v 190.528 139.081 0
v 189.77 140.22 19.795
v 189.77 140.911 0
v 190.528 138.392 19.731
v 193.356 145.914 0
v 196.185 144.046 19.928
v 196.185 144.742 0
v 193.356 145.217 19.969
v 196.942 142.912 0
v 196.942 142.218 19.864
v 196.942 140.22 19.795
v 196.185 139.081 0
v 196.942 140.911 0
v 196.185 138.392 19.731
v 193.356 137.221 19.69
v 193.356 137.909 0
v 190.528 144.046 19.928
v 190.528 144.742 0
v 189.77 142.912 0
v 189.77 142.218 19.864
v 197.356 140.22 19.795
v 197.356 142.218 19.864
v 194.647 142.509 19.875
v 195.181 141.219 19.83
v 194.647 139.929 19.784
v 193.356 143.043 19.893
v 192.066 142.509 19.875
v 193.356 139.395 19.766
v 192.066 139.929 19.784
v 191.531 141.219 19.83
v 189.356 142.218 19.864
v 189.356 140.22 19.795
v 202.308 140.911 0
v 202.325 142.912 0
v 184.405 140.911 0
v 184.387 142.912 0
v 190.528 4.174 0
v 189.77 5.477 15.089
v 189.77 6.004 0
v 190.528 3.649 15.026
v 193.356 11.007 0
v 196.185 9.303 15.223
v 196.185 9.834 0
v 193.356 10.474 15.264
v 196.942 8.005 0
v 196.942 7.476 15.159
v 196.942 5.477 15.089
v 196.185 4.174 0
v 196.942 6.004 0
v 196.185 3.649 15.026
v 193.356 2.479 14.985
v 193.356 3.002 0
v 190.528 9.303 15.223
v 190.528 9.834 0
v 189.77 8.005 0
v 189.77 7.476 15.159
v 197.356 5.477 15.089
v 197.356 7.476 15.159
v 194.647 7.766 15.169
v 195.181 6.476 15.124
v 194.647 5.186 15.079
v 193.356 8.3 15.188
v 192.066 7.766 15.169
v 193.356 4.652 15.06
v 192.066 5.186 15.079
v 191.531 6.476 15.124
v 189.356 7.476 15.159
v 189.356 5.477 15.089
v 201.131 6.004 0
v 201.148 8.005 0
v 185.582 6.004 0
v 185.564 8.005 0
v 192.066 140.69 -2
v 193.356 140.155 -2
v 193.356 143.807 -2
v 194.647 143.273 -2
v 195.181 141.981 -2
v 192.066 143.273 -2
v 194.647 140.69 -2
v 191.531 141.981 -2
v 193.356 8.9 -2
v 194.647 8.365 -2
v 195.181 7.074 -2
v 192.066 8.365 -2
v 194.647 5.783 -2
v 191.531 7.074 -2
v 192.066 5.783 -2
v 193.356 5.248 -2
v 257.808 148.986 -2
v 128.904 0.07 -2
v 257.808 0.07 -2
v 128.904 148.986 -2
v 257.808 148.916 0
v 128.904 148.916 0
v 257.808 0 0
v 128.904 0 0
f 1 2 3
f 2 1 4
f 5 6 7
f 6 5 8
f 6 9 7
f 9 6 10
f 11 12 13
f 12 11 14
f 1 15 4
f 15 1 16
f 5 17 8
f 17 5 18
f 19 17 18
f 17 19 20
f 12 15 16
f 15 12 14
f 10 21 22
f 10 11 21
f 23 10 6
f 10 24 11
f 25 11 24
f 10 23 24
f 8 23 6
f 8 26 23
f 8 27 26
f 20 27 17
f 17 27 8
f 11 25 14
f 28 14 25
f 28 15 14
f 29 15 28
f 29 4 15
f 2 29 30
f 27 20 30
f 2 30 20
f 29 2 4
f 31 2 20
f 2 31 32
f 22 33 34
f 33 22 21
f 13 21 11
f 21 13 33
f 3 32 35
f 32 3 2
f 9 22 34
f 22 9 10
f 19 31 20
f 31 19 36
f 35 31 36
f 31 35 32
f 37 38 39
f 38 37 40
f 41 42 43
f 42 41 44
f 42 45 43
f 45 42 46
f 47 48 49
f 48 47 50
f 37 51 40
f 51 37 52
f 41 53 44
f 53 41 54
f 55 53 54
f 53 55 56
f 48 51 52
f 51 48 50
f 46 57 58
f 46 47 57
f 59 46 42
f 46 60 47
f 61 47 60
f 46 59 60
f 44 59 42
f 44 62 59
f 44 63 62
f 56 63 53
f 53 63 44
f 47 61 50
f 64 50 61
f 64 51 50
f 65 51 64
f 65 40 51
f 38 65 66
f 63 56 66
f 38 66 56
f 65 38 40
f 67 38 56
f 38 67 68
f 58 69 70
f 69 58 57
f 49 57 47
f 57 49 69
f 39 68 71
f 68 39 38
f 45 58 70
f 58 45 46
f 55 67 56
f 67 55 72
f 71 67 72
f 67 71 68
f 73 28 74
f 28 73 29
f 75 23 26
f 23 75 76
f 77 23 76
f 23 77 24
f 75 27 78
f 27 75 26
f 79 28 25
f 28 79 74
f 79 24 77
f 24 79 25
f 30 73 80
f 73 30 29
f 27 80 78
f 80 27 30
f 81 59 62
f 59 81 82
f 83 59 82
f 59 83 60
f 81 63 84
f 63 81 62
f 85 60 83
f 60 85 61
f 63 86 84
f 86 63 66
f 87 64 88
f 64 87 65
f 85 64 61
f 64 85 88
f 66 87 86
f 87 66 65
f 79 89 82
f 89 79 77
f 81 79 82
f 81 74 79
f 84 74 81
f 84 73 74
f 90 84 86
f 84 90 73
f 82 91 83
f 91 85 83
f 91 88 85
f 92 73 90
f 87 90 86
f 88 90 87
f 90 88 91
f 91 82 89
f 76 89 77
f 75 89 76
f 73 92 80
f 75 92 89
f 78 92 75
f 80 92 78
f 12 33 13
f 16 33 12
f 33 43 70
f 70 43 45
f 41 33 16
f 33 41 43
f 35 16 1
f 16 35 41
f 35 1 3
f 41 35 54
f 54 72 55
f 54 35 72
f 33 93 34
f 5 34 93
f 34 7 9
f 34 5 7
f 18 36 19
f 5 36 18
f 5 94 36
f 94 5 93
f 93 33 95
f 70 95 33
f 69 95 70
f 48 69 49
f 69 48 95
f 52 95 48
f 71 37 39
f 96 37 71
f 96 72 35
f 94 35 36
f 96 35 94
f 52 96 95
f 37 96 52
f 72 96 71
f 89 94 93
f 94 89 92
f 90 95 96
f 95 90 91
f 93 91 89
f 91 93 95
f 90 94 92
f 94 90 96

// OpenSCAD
// Generated by SolidPython 1.1.3 on 2025-01-26 22:52:06
$fn = 8;


difference() {
	intersection() {
		union() {
			difference() {
				rotate(a = 2, v = [1, 0, 0]) {
					translate(v = [0, 0, 15.4445000000]) {
						translate(v = [0, 138.8250000000, 0]) {
							translate(v = [10, 0, 0]) {
								difference() {
									translate(v = [-3, 0, 0]) {
										translate(v = [0, -131.8250000000, 0]) {
											translate(v = [0, 0, -68.5555000000]) {
												union() {
													translate(v = [0, 0, 0]) {
														translate(v = [0, 0, 0]) {
															union() {
																cylinder(h = 68, r = 4.0000000000);
																rotate(a = 90, v = [1, 0, 0]) {
																	linear_extrude(center = true, height = 2) {
																		polygon(paths = [[0, 1, 2, 3]], points = [[0, 0], [0, 68], [4.0000000000, 68], [21.0000000000, 0]]);
																	}
																}
																rotate(a = 90, v = [0, 0, 1]) {
																	rotate(a = 90, v = [1, 0, 0]) {
																		linear_extrude(center = true, height = 2) {
																			polygon(paths = [[0, 1, 2, 3]], points = [[0, 0], [0, 68], [4.0000000000, 68], [21.0000000000, 0]]);
																		}
																	}
																}
															}
														}
													}
													translate(v = [0, 0, 0]) {
														translate(v = [0, 134.8250000000, 0]) {
															union() {
																cylinder(h = 68, r = 4.0000000000);
																rotate(a = 90, v = [1, 0, 0]) {
																	linear_extrude(center = true, height = 2) {
																		polygon(paths = [[0, 1, 2, 3]], points = [[0, 0], [0, 68], [4.0000000000, 68], [21.0000000000, 0]]);
																	}
																}
																rotate(a = 270, v = [0, 0, 1]) {
																	rotate(a = 90, v = [1, 0, 0]) {
																		linear_extrude(center = true, height = 2) {
																			polygon(paths = [[0, 1, 2, 3]], points = [[0, 0], [0, 68], [4.0000000000, 68], [21.0000000000, 0]]);
																		}
																	}
																}
															}
														}
													}
													translate(v = [372.7125000000, 0, 0]) {
														translate(v = [0, 134.8250000000, 0]) {
															union() {
																cylinder(h = 68, r = 4.0000000000);
																rotate(a = 180, v = [0, 0, 1]) {
																	rotate(a = 90, v = [1, 0, 0]) {
																		linear_extrude(center = true, height = 2) {
																			polygon(paths = [[0, 1, 2, 3]], points = [[0, 0], [0, 68], [4.0000000000, 68], [21.0000000000, 0]]);
																		}
																	}
																}
																rotate(a = 270, v = [0, 0, 1]) {
																	rotate(a = 90, v = [1, 0, 0]) {
																		linear_extrude(center = true, height = 2) {
																			polygon(paths = [[0, 1, 2, 3]], points = [[0, 0], [0, 68], [4.0000000000, 68], [21.0000000000, 0]]);
																		}
																	}
																}
															}
														}
													}
													translate(v = [372.7125000000, 0, 0]) {
														translate(v = [0, 0, 0]) {
															union() {
																cylinder(h = 68, r = 4.0000000000);
																rotate(a = 180, v = [0, 0, 1]) {
																	rotate(a = 90, v = [1, 0, 0]) {
																		linear_extrude(center = true, height = 2) {
																			polygon(paths = [[0, 1, 2, 3]], points = [[0, 0], [0, 68], [4.0000000000, 68], [21.0000000000, 0]]);
																		}
																	}
																}
																rotate(a = 90, v = [0, 0, 1]) {
																	rotate(a = 90, v = [1, 0, 0]) {
																		linear_extrude(center = true, height = 2) {
																			polygon(paths = [[0, 1, 2, 3]], points = [[0, 0], [0, 68], [4.0000000000, 68], [21.0000000000, 0]]);
																		}
																	}
																}
															}
														}
													}
													translate(v = [186.3562500000, 0, 0]) {
														translate(v = [0, 134.8250000000, 0]) {
															union() {
																cylinder(h = 68, r = 4.0000000000);
																rotate(a = 90, v = [1, 0, 0]) {
																	linear_extrude(center = true, height = 2) {
																		polygon(paths = [[0, 1, 2, 3]], points = [[0, 0], [0, 68], [4.0000000000, 68], [21.0000000000, 0]]);
																	}
																}
																rotate(a = 180, v = [0, 0, 1]) {
																	rotate(a = 90, v = [1, 0, 0]) {
																		linear_extrude(center = true, height = 2) {
																			polygon(paths = [[0, 1, 2, 3]], points = [[0, 0], [0, 68], [4.0000000000, 68], [21.0000000000, 0]]);
																		}
																	}
																}
															}
														}
													}
													translate(v = [186.3562500000, 0, 0]) {
														translate(v = [0, 0, 0]) {
															union() {
																cylinder(h = 68, r = 4.0000000000);
																rotate(a = 90, v = [1, 0, 0]) {
																	linear_extrude(center = true, height = 2) {
																		polygon(paths = [[0, 1, 2, 3]], points = [[0, 0], [0, 68], [4.0000000000, 68], [21.0000000000, 0]]);
																	}
																}
																rotate(a = 180, v = [0, 0, 1]) {
																	rotate(a = 90, v = [1, 0, 0]) {
																		linear_extrude(center = true, height = 2) {
																			polygon(paths = [[0, 1, 2, 3]], points = [[0, 0], [0, 68], [4.0000000000, 68], [21.0000000000, 0]]);
																		}
																	}
																}
															}
														}
													}
												}
											}
										}
									}
									translate(v = [-3, 0, 0]) {
										translate(v = [0, -131.8250000000, 0]) {
											union() {
												translate(v = [0, 0, 0]) {
													translate(v = [0, 0, 0]) {
														cylinder(center = true, h = 272, r = 1.8250000000);
													}
												}
												translate(v = [0, 0, 0]) {
													translate(v = [0, 134.8250000000, 0]) {
														cylinder(center = true, h = 272, r = 1.8250000000);
													}
												}
												translate(v = [372.7125000000, 0, 0]) {
													translate(v = [0, 134.8250000000, 0]) {
														cylinder(center = true, h = 272, r = 1.8250000000);
													}
												}
												translate(v = [372.7125000000, 0, 0]) {
													translate(v = [0, 0, 0]) {
														cylinder(center = true, h = 272, r = 1.8250000000);
													}
												}
												translate(v = [186.3562500000, 0, 0]) {
													translate(v = [0, 134.8250000000, 0]) {
														cylinder(center = true, h = 272, r = 1.8250000000);
													}
												}
												translate(v = [186.3562500000, 0, 0]) {
													translate(v = [0, 0, 0]) {
														cylinder(center = true, h = 272, r = 1.8250000000);
													}
												}
											}
										}
									}
								}
							}
						}
					}
				}
				translate(v = [0, 0, -2]) {
					translate(v = [0, 0, -100]) {
						translate(v = [0, -74.4125000000, 0]) {
							translate(v = [-193.3562500000, 0, 0]) {
								cube(size = [773.4250000000, 297.6500000000, 100]);
							}
						}
					}
				}
			}
			intersection() {
				translate(v = [0, 0, -2]) {
					translate(v = [-193.3562500000, 0, 0]) {
						translate(v = [0, -74.4125000000, 0]) {
							cube(size = [773.4250000000, 297.6500000000, 2]);
						}
					}
				}
				rotate(a = 2, v = [1, 0, 0]) {
					translate(v = [0, 0, 15.4445000000]) {
						translate(v = [0, 138.8250000000, 0]) {
							translate(v = [10, 0, 0]) {
								translate(v = [0, 0, -34.0000000000]) {
									translate(v = [183.3562500000, 0, 0]) {
										translate(v = [0, -64.4125000000, 0]) {
											minkowski() {
												cube(center = true, size = [376.7125000000, 138.8250000000, 68]);
												cylinder(center = true, h = 0.5555000000, r = 5);
											}
										}
									}
								}
							}
						}
					}
				}
			}
		}
		translate(v = [0, 0, 15.4445000000]) {
			translate(v = [0, 138.8250000000, 0]) {
				translate(v = [10, 0, 0]) {
					translate(v = [118.9041666667, 0, 0]) {
						translate(v = [0, -223.2375000000, 0]) {
							translate(v = [0, 0, -34.0000000000]) {
								cube(size = [128.9041666667, 297.6500000000, 136]);
							}
						}
					}
				}
			}
		}
	}
	rotate(a = 2, v = [1, 0, 0]) {
		translate(v = [0, 0, 15.4445000000]) {
			translate(v = [0, 138.8250000000, 0]) {
				translate(v = [10, 0, 0]) {
					translate(v = [-3, 0, 0]) {
						translate(v = [0, -131.8250000000, 0]) {
							union() {
								translate(v = [0, 0, 0]) {
									translate(v = [0, 0, 0]) {
										cylinder(center = true, h = 272, r = 1.8250000000);
									}
								}
								translate(v = [0, 0, 0]) {
									translate(v = [0, 134.8250000000, 0]) {
										cylinder(center = true, h = 272, r = 1.8250000000);
									}
								}
								translate(v = [372.7125000000, 0, 0]) {
									translate(v = [0, 134.8250000000, 0]) {
										cylinder(center = true, h = 272, r = 1.8250000000);
									}
								}
								translate(v = [372.7125000000, 0, 0]) {
									translate(v = [0, 0, 0]) {
										cylinder(center = true, h = 272, r = 1.8250000000);
									}
								}
								translate(v = [186.3562500000, 0, 0]) {
									translate(v = [0, 134.8250000000, 0]) {
										cylinder(center = true, h = 272, r = 1.8250000000);
									}
								}
								translate(v = [186.3562500000, 0, 0]) {
									translate(v = [0, 0, 0]) {
										cylinder(center = true, h = 272, r = 1.8250000000);
									}
								}
							}
						}
					}
				}
			}
		}
	}
}
/***********************************************
*********      SolidPython code:      **********
************************************************
 
#!/usr/bin/env python3

import argparse
from asyncio import subprocess
import json
# import math
import re
import logging
import os
# import os.path
import subprocess
# import time

from solid import *
from solid.utils import *

from parameters import Parameters
from keyboard import Keyboard
from cable import Cable

# Set logger level variables
console_logging_level = logging.WARN
file_logging_level = logging.DEBUG


# Get root logger and set main logger level to DEBUG
logger = logging.getLogger()
logger.setLevel(logging.DEBUG)


# Create formatters
console_formatter = logging.Formatter('%(name)s %(levelname)s: %(funcName)s: [%(lineno)d]: %(message)s')
file_formatter = logging.Formatter('%(asctime)s %(levelname)s %(name)s: %(funcName)s: [%(lineno)d]: %(message)s')

# Create console handler and set level to info
console_handler = logging.StreamHandler()
console_handler.setLevel(console_logging_level)

# Add formatter to console_handler
console_handler.setFormatter(console_formatter)

# Add console handler to logger
logger.addHandler(console_handler)

# Get file info that will be used to creat log file
script_location = Path(os.path.dirname(os.path.realpath(__file__)))
log_file_name = 'generator.log'
log_file_path = script_location / log_file_name

# Create file handler and set level to info
file_handler = logging.FileHandler(log_file_path, mode = 'w')
file_handler.setLevel(file_logging_level)

# Add formatter to file_handler
file_handler.setFormatter(file_formatter)

# Add file handler to logger
logger.addHandler(file_handler)


# Helper for parser to wnsure filename argument has to correct extension
def CheckExt(choices):
    class Act(argparse.Action):
        def __call__(self,parser,namespace,fname,option_string=None):
            ext = os.path.splitext(fname)[1][1:]
            if ext not in choices:
                option_string = '({})'.format(option_string) if option_string else ''
                parser.error("file doesn't end with one of {}{}".format(choices,option_string))
            else:
                setattr(namespace,self.dest,fname)

    return Act



def main():

    parser = argparse.ArgumentParser(description='Build custom keyboard SCAD file using keyboard layout editor format')
    parser.add_argument('-i', '--input-file', metavar = 'layout_json_file_name.json', help = 'A path to a keyboard layout editor json file', required = True, action=CheckExt({'json'}))
    # parser.add_argument('-o', '--output-folder', metavar = 'scad', help = 'A path to a folder to store the generated open scad file')
    parser.add_argument('-p', '--parameter-file', metavar = 'parameters.json', help = 'A JSON file containing paramters for the object buing made', default = None, action=CheckExt({'json'}))
    parser.add_argument('-s', '--section', metavar = 'section_num', help = 'The number of the section that should be built', type = int, default = -1)
    parser.add_argument('-a', '--all-sections', help = 'Output all the parts for all possible sections in separate files', default = False, action = 'store_true')
    parser.add_argument('-e', '--exploded', help = 'Create test file with each section shown as an exploded view', default = False, action = 'store_true')
    parser.add_argument('-f', '--fragments', metavar = 'num_fragments', help = 'The number of fragments to be used when creating curves', type = int, default = 8)
    parser.add_argument('-r', '--render', help = 'Render an STL from the generated scad file', default = False, action = 'store_true')
    parser.add_argument('--switch-type-in-filename', help = 'Add the switch type name and stabilizer type name to the filname', default = False, action = 'store_true')

    # Parse command line arguments
    args = parser.parse_args()
    logger.debug(vars(args))

    # Create Path object from input file argument
    input_file_path = Path(args.input_file)

    # Get base folder path
    base_path = input_file_path.parent

    # Get input file name onle
    file_name_only = input_file_path.name
    
    # Get layout name from file name
    layout_name = input_file_path.stem

    # Generate output scad and stl output folder paths
    output_base_folder = base_path / layout_name
    scad_folder_path = output_base_folder / 'scad'
    stl_folder_path = output_base_folder / 'stl'

    # Ensure all outpur folders exists
    if output_base_folder.is_dir() == False:
        output_base_folder.mkdir()

    if scad_folder_path.is_dir() == False:
        scad_folder_path.mkdir()

    if stl_folder_path.is_dir() == False:
        stl_folder_path.mkdir()

    logger.debug('layout_name: %s', str(layout_name))
    logger.debug('base_path: %s', str(base_path))
    logger.debug('file_name_only: %s', str(file_name_only))
    
    # define output file extensions
    scad_postfix = '.scad'
    stl_postfix  = '.stl'

    # Set fragments per circle
    FRAGMENTS = args.fragments
    logger.debug('\tFragments: %d', FRAGMENTS)

    # Pattern and Replacement strings to be used when trying to turn keyboard-layout-editor raw output into valid JSON
    json_key_pattern = '([{,])([xywha1]+):'
    json_key_replace = '\\1"\\2":'

    # Open JSON layout file
    logger.debug('Open layout file %s', input_file_path)
    try:
        # Try with utf-8 encoding specified
        f = open(input_file_path, encoding="utf-8")
    except:
        # Failed to open
        logger.info('Failed to open layout file with utf-8 encoding specified. Try opening without specifying an encoding')
        try:
            # Try opening with no encoding spcificed
            f = open(input_file_path)
        except:
            logger.error('Failed to open layout file both spefifying utf-8 andcoding and not specifying any encodeing. Exiting')
            exit(1)

    logger.debug('Read layout JSON string from file %s', input_file_path)
    try:
        keyboard_layout = f.read()
    except UnicodeDecodeError:
        logger.error('Unable to decode layout file. Please provide utf-8 encoded files')
        exit(-1)

    keyboard_layout_dict = None

    # Load keyboard layout dictionary
    logger.debug('Parse layout file JSON string')
    try:
        # Attempt to parse to provided JSON string
        keyboard_layout_dict = json.loads(keyboard_layout)
        logger.debug('Valid Json Parsed')
    except:
        # Failed to parse the JSON test.
        # This most likely means that the keybaord-layout-editor raw output was provided
        # Attempt to modify that string to make it valid JSON
        keyboard_layout = '[%s]' % (keyboard_layout)
        keyboard_layout = re.sub(json_key_pattern, json_key_replace, keyboard_layout)
        try:
            keyboard_layout_dict = json.loads(keyboard_layout)
            logger.info('Initial layout Json Invalid. Json modified and parsed')
        except:
            logger.error('Failed to parse layout json after attempt at correction.')
            raise

    logger.debug('keyboard_layout_dict: %s', str(keyboard_layout_dict))


    # Read parameter file
    parameter_dict = None
    if args.parameter_file is not None:
        # Open JSON parameter file
        logger.debug('Open parameter file %s', args.parameter_file)
        try:
            # Try with utf-8 encoding specified
            f = open(args.parameter_file, encoding="utf-8")
        except:
            # Failed to open
            logger.info('Failed to open parameter file with utf-8 encoding specified. Try opening without specifying an encoding')
            try:
                # Try opening with no encoding spcificed
                f = open(args.parameter_fil)
            except:
                logger.error('Failed to open parameter file both spefifying utf-8 andcoding and not specifying any encodeing. Exiting')
                exit(1)
        

        logger.debug('Read JSON string from parameter file %s', args.parameter_file)
        try:
             parameter_file_text = f.read()
        except UnicodeDecodeError:
            logger.error('Unable to decode parameter file. Please provide utf-8 encoded files')
            exit(-1)
       
        logger.debug('Parse parameter JSON string')
        try:
            parameter_dict = json.loads(parameter_file_text)
            logger.debug('Valid Json Parsed')
        except:
            logger.error('Failed to parse parameter JSON file.')
            raise

        logger.debug('parameter_dict: %s', str(parameter_dict))


    # Set parameters from imput file
    parameters = Parameters(parameter_dict)
    
    # Create Keyboard instance
    keyboard = Keyboard(parameters)

    # Process the keyboard layout object
    keyboard.process_keyboard_layout(keyboard_layout_dict)
    keyboard.process_custom_shapes()

    logger.debug('kerf: %f', keyboard.kerf)

    # Dictionary of SolidPython solid objects that need to be rendered to SCAD and to STL if desired
    solid_object_dict = {}

    # Create objects for each of the generated sections
    if args.all_sections == True:
        # Iterate over all sections generated and add all sections to solid_object_dict
        for section in range(keyboard.get_top_section_count()):
            # Set current section for generator
            keyboard.set_section(section)

            # Create dict for section
            solid_object_dict[section] = {}

            # Add top assembly, plate, and all assembly to section dict
            solid_object_dict[section]['top'] = keyboard.get_assembly(top = True)
            solid_object_dict[section]['all'] = keyboard.get_assembly(all = True)
            solid_object_dict[section]['plate'] = keyboard.get_assembly(plate_only = True)

            # If there is a bottom section for the current section add it to section dict
            if section < keyboard.get_bottom_section_count():
                solid_object_dict[section]['bottom'] = keyboard.get_assembly(bottom = True)
            
    # Create exploded object
    elif args.exploded == True:
        solid_object_dict[-1] = {}
        solid_object_dict[-1]['top'] = union()
        solid_object_dict[-1]['plate'] = union()
        solid_object_dict[-1]['bottom'] = union()
        for section in range(keyboard.get_top_section_count()):
            keyboard.set_section(section)
            solid_object_dict[-1]['top'] += up(5 * section) ( right(10 * section) ( keyboard.get_assembly(top = True) ) )
            solid_object_dict[-1]['plate'] += up(5 * section) ( right(10 * section) ( keyboard.get_assembly(plate_only = True) ) )
            if section < keyboard.get_bottom_section_count():
                solid_object_dict[-1]['bottom'] += up(5 * section) ( right(10 * section) ( keyboard.get_assembly(bottom = True) ) )
    

    # Create objects for a specified section
    elif args.section > -1:
        # Set desired section to create
        keyboard.set_section(args.section)

        # Create dict for section
        solid_object_dict[args.section] = {}

        # Add top assembly, plate, and all assembly to section dict
        solid_object_dict[args.section]['top'] = keyboard.get_assembly(top = True)
        solid_object_dict[args.section]['all'] = keyboard.get_assembly(all = True)
        solid_object_dict[args.section]['plate'] = keyboard.get_assembly(plate_only = True)

        # If there is a bottom section for the current section add it to section dict
        if args.section < keyboard.get_bottom_section_count():
            solid_object_dict[args.section]['bottom'] = keyboard.get_assembly(bottom = True)

    # Create an objects that are not split into sections. No other options were specified
    else:
        logger.debug('Create whole object. No other options specified')
        solid_object_dict['all'] = {}
        solid_object_dict['all']['top'] = keyboard.get_assembly(top = True)
        solid_object_dict['all']['bottom'] = keyboard.get_assembly(bottom = True)
        solid_object_dict['all']['all'] = keyboard.get_assembly(all = True)
        solid_object_dict['all']['plate'] = keyboard.get_assembly(plate_only = True)
    
    # Add global items that are not dependant on the sctions or parts of the item to build
    solid_object_dict['global'] = {}

    # Generate a strain relief piece for the cable hole
    if parameters.cable_hole == True:
        cable = Cable(parameters)
        solid_object_dict['global']['cable_holder_main'] = cable.holder_main()
        solid_object_dict['global']['cable_holder_clamp'] = cable.holder_clamp()
        solid_object_dict['global']['cable_holder_all'] = cable.holder_all()

    print(parameters)
    print('Case Height: %f, Case Width: %f\n' % (parameters.real_case_height, parameters.real_case_width))
    
    logger.info('Case Height: %f, Case Width: %f', parameters.real_case_height, parameters.real_case_width)
    logger.info('Sections In Top: %d', keyboard.get_top_section_count())
    logger.info('Sections In Bottom: %d', keyboard.get_bottom_section_count())


    ############################################################
    # Render SCAD and STL files
    ############################################################
    subprocess_dict = {}

    switch_type_for_filename = ''
    stab_type_for_filename = ''

    for section in solid_object_dict.keys():

        if args.switch_type_in_filename == True:
            switch_type_for_filename = '_' + parameters.switch_type
            stab_type_for_filename = '_' + parameters.stabilizer_type

        section_postfix = ''

        # Creating global items that have no relaton to switch type
        if isinstance(section, str) and section == 'global':
            switch_type_for_filename = ''
            stab_type_for_filename = ''
        
        # If the current object dict section is an int greater than -1 add the section number to the filename
        if isinstance(section, int) and section > -1:
            section_postfix = '_section_%d' % (section)
        
        if args.exploded == True:
            section_postfix = '_exploded'

        for part_name in solid_object_dict[section].keys():
            part_name_formatted = '_' + part_name

            scad_file_name = scad_folder_path / (layout_name + section_postfix + part_name_formatted + switch_type_for_filename + stab_type_for_filename + scad_postfix)
            stl_file_name = stl_folder_path / (layout_name + section_postfix + part_name_formatted + switch_type_for_filename + stab_type_for_filename + stl_postfix)

            if solid_object_dict[section][part_name] is not None:
                logger.info('Generate scad file with name %s', scad_file_name)
                # Generate SCAD file from assembly
                scad_render_to_file(solid_object_dict[section][part_name], scad_file_name, file_header=f'$fn = {FRAGMENTS};')
                print('Generated scad file with name', scad_file_name)
                
                # Render STL if option is chosen
                if args.render:
                    logger.debug('Render STL from SCAD')
                    logger.info('Generate stl file with name %s from %s', stl_file_name, scad_file_name)

                    openscad_command_list = ['openscad', '-o', '%s' % (stl_file_name), '%s' % (scad_file_name)]
                    subprocess_dict[stl_file_name] = subprocess.Popen(openscad_command_list)
    
    
    ################################################################
    #  Wait for render processes to complete
    ################################################################
    if args.render:
        logger.debug(subprocess_dict)
        running = True
        while running == True:
            running = False
            for stl_file_name in subprocess_dict.keys():
                p = subprocess_dict[stl_file_name]
                if p is not None:
                    # running = True
                    rcode = None
                    try:
                        rcode = p.wait(.1)
                    except subprocess.TimeoutExpired as err:
                        running = True
                    if rcode is not None:
                        logger.info('Render Complete: file: %s', stl_file_name)
                        print('Render Complete: file:', stl_file_name)
                        subprocess_dict[stl_file_name] = None
            # time.sleep(1)



    logger.info('Generation Complete')

if __name__ == "__main__":
    main()
 
 
************************************************/
